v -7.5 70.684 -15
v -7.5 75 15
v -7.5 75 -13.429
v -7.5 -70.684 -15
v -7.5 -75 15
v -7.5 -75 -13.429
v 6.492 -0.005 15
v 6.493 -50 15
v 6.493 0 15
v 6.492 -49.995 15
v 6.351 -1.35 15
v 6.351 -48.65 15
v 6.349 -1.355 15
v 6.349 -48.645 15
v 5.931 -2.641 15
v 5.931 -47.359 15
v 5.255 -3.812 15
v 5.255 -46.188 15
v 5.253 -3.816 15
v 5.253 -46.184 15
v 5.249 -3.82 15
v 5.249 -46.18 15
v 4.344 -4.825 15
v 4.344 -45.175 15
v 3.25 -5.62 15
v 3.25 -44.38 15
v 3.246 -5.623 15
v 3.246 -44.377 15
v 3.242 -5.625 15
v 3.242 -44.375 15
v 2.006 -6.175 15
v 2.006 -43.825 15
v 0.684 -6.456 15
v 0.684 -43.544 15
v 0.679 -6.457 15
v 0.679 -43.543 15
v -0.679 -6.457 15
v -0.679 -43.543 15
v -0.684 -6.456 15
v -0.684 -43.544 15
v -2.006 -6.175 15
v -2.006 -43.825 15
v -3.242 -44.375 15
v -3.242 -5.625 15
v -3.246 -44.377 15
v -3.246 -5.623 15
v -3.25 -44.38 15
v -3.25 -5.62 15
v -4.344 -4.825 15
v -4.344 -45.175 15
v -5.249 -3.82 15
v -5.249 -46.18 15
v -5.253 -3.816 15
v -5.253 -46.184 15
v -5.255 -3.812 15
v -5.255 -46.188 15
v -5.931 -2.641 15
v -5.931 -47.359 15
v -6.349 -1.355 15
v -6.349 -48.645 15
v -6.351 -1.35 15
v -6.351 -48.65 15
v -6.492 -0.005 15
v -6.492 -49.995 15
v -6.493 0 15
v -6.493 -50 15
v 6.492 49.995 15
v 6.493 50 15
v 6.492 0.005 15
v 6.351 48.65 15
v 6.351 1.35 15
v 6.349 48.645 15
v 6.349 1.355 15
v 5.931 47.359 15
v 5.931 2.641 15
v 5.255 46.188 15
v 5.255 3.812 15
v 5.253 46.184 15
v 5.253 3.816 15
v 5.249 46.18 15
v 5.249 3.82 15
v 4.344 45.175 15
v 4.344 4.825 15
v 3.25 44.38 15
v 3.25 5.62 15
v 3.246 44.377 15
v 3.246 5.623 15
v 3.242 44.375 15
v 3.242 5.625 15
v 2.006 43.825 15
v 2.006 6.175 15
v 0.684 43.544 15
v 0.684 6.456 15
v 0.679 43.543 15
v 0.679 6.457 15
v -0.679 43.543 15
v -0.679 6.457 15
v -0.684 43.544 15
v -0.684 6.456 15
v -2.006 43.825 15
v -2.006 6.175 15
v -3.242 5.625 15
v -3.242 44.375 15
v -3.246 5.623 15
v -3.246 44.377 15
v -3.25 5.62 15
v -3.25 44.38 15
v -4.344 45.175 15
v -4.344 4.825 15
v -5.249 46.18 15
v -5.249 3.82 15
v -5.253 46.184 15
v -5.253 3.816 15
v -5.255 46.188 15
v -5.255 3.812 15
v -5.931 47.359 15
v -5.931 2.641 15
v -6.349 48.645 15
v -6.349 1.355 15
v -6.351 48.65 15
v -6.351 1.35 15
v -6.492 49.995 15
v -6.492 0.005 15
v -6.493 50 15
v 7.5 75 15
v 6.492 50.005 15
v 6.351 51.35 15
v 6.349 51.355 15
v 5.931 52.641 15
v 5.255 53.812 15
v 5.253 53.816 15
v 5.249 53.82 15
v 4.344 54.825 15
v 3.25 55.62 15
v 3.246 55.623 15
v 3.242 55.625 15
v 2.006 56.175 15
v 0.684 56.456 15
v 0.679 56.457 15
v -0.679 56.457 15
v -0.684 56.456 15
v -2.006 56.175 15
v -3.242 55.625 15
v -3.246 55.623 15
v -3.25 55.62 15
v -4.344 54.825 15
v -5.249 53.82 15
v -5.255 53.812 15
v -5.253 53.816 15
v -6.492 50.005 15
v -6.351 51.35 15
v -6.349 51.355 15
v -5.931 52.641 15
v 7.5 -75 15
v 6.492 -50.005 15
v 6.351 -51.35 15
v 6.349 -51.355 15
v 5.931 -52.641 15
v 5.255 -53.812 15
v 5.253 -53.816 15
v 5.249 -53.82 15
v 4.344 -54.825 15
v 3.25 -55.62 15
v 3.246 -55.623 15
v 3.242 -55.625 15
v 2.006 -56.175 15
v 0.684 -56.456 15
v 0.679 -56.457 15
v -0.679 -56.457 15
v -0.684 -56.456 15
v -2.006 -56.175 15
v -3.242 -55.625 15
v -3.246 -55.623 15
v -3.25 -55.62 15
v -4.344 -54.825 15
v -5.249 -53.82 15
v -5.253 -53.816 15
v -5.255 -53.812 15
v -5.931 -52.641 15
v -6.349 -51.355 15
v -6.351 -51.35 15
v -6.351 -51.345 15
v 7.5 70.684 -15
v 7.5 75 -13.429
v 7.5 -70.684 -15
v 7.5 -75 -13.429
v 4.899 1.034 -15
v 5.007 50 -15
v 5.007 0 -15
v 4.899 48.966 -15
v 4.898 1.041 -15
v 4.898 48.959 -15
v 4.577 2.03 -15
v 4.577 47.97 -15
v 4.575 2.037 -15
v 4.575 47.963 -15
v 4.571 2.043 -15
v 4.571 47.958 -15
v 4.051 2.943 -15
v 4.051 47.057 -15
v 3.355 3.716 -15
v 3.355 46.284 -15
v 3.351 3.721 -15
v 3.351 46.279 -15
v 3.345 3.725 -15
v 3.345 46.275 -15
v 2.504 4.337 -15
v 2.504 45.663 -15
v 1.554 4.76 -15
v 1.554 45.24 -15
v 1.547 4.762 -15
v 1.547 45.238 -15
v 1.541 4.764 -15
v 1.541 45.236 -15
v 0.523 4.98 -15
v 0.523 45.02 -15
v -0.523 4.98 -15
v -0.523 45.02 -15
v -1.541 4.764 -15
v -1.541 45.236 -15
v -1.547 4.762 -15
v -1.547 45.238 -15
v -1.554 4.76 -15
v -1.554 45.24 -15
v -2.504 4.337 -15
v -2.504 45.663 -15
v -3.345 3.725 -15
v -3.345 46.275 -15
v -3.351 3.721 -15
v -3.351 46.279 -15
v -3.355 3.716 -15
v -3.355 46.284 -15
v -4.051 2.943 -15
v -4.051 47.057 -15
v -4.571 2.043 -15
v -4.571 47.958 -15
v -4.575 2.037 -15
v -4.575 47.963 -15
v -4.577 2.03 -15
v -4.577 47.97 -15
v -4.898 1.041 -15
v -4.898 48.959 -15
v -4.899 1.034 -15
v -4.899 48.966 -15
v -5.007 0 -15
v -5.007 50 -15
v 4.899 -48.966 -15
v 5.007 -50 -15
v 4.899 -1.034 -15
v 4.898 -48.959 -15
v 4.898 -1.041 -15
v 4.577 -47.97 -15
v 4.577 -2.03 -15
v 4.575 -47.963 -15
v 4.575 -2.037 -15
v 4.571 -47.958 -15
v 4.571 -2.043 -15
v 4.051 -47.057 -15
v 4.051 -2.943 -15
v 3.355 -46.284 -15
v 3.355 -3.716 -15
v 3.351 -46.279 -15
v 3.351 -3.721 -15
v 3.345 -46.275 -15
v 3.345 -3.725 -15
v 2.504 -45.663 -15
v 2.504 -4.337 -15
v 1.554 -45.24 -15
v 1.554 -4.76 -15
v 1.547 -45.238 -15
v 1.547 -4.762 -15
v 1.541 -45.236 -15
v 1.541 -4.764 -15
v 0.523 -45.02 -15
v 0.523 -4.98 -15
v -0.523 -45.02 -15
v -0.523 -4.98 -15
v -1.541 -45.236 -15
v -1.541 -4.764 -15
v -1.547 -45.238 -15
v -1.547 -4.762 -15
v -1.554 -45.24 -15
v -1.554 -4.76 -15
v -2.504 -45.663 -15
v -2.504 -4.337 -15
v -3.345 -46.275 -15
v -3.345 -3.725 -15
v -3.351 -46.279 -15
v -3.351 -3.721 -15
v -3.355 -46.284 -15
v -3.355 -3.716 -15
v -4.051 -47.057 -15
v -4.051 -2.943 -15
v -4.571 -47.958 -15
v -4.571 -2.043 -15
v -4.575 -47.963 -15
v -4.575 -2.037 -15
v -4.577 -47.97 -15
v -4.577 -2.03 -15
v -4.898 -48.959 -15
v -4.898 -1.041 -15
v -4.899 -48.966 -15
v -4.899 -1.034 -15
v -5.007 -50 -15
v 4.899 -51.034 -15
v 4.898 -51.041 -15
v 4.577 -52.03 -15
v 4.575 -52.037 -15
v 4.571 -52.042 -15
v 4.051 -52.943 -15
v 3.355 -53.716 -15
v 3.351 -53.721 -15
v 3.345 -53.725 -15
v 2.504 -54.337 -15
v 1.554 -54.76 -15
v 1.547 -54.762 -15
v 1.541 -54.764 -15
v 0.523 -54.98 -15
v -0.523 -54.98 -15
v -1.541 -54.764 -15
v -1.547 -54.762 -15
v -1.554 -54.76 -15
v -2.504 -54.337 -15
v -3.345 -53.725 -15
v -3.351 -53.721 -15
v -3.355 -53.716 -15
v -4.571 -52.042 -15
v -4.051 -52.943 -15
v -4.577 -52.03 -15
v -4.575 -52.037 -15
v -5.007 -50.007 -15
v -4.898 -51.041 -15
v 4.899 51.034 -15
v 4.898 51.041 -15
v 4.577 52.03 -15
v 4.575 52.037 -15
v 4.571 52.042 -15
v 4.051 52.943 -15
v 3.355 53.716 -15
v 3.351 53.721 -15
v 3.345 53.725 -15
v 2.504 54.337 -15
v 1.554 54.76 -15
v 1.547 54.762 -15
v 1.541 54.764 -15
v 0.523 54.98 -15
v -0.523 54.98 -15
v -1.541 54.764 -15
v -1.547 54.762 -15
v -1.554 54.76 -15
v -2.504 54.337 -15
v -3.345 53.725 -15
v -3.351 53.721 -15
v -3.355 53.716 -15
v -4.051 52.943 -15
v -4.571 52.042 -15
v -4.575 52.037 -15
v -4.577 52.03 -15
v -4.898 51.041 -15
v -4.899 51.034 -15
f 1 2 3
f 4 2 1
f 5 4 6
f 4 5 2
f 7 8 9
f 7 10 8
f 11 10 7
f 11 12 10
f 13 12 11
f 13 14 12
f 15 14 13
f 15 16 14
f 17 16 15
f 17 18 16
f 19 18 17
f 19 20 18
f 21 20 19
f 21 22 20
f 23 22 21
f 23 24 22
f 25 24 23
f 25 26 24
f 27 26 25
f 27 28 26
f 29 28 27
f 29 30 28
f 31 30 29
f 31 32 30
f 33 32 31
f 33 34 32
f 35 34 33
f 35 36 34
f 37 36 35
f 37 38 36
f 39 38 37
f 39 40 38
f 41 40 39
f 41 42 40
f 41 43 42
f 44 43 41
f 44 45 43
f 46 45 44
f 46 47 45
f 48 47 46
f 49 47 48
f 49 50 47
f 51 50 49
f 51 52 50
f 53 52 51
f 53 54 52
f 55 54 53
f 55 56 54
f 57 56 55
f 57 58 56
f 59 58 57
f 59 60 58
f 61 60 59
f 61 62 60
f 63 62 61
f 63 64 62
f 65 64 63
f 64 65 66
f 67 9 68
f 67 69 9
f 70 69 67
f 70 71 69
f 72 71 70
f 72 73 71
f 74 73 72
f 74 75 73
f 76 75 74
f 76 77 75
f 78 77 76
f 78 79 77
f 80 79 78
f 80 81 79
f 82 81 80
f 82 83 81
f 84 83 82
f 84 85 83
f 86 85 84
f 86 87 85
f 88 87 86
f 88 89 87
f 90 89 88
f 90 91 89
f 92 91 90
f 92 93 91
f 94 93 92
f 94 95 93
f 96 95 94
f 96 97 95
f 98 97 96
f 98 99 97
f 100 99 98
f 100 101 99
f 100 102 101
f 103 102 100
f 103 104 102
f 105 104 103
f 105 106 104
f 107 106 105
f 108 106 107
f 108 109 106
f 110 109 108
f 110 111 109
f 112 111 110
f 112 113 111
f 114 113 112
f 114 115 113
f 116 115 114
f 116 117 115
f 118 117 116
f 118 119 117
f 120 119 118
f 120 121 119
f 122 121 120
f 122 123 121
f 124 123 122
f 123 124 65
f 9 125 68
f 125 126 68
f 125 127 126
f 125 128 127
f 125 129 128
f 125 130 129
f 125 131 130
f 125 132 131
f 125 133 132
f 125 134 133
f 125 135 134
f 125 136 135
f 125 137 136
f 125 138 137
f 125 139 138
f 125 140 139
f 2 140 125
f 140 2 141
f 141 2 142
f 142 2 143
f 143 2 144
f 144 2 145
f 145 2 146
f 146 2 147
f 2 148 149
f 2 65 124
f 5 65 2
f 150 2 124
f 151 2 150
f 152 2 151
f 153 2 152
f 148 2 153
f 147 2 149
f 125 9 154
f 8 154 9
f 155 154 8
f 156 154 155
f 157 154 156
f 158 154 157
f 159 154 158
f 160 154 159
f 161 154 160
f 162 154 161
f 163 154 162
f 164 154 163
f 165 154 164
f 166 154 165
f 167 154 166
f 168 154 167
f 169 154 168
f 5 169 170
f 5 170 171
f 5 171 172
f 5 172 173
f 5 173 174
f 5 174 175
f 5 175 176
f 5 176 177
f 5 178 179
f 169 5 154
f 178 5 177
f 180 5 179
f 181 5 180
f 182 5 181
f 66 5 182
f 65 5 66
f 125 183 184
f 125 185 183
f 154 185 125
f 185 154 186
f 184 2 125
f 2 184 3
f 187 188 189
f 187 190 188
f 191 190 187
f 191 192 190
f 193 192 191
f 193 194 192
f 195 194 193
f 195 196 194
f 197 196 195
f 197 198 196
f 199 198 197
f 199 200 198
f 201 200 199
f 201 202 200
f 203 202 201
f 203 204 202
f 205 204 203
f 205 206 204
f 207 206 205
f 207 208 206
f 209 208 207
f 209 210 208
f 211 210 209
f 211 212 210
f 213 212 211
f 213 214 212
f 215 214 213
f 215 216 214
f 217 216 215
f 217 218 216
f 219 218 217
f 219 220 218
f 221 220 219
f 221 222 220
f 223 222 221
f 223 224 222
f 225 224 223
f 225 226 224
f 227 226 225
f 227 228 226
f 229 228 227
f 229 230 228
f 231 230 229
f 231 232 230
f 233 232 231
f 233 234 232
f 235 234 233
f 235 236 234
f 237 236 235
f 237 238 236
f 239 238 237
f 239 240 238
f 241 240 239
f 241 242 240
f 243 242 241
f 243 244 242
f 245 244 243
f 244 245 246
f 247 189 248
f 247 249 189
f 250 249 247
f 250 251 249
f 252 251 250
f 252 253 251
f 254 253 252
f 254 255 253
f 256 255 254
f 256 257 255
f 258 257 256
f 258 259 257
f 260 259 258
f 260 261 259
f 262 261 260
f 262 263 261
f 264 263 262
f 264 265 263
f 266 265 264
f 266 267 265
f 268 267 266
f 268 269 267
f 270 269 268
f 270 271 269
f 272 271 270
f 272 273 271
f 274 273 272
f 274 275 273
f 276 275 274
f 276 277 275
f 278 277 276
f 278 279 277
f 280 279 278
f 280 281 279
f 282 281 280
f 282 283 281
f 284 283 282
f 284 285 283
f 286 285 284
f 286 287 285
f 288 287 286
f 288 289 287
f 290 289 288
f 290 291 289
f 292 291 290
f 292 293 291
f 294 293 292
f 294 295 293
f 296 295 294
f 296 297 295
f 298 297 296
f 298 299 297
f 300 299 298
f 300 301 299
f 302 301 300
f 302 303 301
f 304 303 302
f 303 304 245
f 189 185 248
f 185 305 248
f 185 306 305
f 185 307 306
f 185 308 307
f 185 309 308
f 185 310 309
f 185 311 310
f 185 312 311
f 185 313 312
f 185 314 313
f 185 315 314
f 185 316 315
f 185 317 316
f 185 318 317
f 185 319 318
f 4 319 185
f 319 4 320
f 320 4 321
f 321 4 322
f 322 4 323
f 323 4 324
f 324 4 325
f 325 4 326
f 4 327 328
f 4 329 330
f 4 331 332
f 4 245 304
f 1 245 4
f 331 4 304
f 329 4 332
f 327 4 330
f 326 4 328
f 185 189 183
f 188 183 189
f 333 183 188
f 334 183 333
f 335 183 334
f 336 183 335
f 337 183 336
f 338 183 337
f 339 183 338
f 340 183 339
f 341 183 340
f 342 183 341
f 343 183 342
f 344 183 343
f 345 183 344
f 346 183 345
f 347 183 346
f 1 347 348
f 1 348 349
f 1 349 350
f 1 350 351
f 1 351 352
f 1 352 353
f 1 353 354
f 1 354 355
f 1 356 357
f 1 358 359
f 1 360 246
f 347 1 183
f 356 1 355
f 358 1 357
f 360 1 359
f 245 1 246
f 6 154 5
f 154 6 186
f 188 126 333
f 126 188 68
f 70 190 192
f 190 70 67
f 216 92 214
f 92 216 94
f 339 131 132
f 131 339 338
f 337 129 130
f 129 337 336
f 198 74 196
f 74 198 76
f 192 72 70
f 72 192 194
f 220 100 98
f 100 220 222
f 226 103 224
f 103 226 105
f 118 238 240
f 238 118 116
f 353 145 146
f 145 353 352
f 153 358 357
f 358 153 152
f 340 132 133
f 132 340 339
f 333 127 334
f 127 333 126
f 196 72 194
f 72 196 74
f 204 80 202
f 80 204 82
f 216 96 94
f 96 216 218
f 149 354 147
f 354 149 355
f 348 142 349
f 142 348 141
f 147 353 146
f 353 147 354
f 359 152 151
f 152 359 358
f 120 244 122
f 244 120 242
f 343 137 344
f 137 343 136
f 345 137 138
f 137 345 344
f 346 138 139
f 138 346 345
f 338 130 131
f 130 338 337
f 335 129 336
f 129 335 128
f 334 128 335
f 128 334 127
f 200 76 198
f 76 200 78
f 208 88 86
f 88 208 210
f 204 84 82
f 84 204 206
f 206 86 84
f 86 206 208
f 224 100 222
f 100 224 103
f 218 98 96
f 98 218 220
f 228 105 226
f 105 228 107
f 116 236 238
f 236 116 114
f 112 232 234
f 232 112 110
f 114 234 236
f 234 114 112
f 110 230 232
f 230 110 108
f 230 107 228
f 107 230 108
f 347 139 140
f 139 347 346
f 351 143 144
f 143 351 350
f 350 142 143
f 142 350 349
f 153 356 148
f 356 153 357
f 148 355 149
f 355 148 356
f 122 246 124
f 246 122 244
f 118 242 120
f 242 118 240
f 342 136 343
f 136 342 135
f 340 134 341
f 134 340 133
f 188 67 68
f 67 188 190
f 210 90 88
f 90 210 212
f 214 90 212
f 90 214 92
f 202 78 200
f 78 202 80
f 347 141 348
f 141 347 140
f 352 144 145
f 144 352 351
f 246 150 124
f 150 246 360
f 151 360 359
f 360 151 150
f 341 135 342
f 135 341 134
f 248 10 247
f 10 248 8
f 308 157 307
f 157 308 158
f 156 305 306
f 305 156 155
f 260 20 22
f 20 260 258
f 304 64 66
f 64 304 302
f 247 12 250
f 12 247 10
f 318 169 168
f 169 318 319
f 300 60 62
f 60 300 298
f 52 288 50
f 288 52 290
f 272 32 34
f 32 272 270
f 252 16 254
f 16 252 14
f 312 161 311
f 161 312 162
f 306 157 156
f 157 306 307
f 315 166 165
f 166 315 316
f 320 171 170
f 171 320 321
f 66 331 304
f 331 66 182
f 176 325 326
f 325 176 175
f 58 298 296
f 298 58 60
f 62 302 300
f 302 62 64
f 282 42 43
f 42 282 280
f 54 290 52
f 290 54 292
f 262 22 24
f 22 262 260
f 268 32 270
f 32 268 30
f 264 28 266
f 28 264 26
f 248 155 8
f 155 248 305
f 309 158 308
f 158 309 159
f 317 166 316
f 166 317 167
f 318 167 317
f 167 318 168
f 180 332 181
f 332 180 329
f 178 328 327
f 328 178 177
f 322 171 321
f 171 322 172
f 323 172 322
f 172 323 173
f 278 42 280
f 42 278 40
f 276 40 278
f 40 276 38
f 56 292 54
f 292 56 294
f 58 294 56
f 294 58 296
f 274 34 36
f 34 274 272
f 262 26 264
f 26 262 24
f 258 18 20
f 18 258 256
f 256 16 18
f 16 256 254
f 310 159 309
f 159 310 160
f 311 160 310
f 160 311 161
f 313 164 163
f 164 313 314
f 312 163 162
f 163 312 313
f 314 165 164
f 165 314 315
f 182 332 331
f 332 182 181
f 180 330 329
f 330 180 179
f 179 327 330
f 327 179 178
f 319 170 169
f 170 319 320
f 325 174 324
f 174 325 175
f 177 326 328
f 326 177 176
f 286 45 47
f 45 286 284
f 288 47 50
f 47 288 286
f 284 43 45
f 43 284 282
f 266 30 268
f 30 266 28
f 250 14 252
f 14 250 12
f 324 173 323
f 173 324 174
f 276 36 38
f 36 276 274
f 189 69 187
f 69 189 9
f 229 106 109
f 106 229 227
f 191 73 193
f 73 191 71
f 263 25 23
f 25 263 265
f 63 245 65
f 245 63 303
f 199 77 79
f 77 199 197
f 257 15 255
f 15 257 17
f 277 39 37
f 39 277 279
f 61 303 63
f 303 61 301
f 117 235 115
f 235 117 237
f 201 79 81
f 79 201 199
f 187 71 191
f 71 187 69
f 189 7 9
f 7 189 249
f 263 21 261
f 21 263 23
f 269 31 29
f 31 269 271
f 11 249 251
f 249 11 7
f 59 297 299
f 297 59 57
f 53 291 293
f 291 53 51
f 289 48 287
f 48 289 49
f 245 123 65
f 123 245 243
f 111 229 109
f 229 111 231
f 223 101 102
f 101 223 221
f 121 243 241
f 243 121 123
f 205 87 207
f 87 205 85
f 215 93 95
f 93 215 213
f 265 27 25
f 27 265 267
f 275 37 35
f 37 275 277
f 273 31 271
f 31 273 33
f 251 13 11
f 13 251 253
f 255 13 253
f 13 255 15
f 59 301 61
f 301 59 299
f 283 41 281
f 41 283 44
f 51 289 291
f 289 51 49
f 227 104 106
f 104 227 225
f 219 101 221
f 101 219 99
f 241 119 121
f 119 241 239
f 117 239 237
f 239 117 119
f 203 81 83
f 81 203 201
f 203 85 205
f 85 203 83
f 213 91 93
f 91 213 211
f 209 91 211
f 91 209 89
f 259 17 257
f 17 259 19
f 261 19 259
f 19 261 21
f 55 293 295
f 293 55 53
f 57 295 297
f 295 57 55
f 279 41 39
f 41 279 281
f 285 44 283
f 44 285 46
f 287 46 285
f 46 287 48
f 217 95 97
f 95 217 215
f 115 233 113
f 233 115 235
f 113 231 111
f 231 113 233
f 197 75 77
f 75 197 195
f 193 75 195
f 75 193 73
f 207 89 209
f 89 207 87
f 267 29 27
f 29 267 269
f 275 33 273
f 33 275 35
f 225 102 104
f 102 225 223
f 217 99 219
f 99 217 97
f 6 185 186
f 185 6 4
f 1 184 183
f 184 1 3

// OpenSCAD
$fs = 0.01;

laser_radius=10/2; // the radius of the cylindrical laser module

wiggle_radius=13/2;

laser_length=30; // the length of the cylindrical laser module

laser_offset=100; // the horizontal offset between the laser modules (i.e. the reference distance between laser pointer dots

outer_laser_1_angle=0;

outer_laser_2_angle=.0;

depth_laser_angle=0; // the angle of rotation of the 'depth' reference laser module

block_width=laser_radius*3; 
block_height=laser_length;
block_length=laser_offset*1.5;

bevel_width=block_width*1.2;
bevel_length=10;
bevel_height=10;

difference() {
difference() {
    
    // the main shape
	cube (size = [block_width,block_length,block_height], center=true);
    
    // outer # 1
    translate([0,laser_offset/2,0])
    rotate([outer_laser_1_angle,0,0])
    {
    cylinder(h=block_height*1.01, r1=laser_radius, r2=wiggle_radius, center=true);
   }
    
    // outer # 2
    translate([0,-laser_offset/2,0])
    rotate([outer_laser_2_angle,0,0])
    cylinder(h=block_height*1.01, r1=laser_radius, r2=wiggle_radius, center=true);
    
   // inner 
     rotate([depth_laser_angle,0,0])
    cylinder(h=block_height*1.01, r1=laser_radius, r2=wiggle_radius, center=true);
    
}

 translate([0,-block_length/2,-block_height/1.6])
rotate([-20,0,0])
cube (size = [bevel_width,bevel_length,bevel_height], center=true);

translate([0,block_length/2,-block_height/1.6])
rotate([20,0,0])
cube (size = [bevel_width,bevel_length,bevel_height], center=true);

}
